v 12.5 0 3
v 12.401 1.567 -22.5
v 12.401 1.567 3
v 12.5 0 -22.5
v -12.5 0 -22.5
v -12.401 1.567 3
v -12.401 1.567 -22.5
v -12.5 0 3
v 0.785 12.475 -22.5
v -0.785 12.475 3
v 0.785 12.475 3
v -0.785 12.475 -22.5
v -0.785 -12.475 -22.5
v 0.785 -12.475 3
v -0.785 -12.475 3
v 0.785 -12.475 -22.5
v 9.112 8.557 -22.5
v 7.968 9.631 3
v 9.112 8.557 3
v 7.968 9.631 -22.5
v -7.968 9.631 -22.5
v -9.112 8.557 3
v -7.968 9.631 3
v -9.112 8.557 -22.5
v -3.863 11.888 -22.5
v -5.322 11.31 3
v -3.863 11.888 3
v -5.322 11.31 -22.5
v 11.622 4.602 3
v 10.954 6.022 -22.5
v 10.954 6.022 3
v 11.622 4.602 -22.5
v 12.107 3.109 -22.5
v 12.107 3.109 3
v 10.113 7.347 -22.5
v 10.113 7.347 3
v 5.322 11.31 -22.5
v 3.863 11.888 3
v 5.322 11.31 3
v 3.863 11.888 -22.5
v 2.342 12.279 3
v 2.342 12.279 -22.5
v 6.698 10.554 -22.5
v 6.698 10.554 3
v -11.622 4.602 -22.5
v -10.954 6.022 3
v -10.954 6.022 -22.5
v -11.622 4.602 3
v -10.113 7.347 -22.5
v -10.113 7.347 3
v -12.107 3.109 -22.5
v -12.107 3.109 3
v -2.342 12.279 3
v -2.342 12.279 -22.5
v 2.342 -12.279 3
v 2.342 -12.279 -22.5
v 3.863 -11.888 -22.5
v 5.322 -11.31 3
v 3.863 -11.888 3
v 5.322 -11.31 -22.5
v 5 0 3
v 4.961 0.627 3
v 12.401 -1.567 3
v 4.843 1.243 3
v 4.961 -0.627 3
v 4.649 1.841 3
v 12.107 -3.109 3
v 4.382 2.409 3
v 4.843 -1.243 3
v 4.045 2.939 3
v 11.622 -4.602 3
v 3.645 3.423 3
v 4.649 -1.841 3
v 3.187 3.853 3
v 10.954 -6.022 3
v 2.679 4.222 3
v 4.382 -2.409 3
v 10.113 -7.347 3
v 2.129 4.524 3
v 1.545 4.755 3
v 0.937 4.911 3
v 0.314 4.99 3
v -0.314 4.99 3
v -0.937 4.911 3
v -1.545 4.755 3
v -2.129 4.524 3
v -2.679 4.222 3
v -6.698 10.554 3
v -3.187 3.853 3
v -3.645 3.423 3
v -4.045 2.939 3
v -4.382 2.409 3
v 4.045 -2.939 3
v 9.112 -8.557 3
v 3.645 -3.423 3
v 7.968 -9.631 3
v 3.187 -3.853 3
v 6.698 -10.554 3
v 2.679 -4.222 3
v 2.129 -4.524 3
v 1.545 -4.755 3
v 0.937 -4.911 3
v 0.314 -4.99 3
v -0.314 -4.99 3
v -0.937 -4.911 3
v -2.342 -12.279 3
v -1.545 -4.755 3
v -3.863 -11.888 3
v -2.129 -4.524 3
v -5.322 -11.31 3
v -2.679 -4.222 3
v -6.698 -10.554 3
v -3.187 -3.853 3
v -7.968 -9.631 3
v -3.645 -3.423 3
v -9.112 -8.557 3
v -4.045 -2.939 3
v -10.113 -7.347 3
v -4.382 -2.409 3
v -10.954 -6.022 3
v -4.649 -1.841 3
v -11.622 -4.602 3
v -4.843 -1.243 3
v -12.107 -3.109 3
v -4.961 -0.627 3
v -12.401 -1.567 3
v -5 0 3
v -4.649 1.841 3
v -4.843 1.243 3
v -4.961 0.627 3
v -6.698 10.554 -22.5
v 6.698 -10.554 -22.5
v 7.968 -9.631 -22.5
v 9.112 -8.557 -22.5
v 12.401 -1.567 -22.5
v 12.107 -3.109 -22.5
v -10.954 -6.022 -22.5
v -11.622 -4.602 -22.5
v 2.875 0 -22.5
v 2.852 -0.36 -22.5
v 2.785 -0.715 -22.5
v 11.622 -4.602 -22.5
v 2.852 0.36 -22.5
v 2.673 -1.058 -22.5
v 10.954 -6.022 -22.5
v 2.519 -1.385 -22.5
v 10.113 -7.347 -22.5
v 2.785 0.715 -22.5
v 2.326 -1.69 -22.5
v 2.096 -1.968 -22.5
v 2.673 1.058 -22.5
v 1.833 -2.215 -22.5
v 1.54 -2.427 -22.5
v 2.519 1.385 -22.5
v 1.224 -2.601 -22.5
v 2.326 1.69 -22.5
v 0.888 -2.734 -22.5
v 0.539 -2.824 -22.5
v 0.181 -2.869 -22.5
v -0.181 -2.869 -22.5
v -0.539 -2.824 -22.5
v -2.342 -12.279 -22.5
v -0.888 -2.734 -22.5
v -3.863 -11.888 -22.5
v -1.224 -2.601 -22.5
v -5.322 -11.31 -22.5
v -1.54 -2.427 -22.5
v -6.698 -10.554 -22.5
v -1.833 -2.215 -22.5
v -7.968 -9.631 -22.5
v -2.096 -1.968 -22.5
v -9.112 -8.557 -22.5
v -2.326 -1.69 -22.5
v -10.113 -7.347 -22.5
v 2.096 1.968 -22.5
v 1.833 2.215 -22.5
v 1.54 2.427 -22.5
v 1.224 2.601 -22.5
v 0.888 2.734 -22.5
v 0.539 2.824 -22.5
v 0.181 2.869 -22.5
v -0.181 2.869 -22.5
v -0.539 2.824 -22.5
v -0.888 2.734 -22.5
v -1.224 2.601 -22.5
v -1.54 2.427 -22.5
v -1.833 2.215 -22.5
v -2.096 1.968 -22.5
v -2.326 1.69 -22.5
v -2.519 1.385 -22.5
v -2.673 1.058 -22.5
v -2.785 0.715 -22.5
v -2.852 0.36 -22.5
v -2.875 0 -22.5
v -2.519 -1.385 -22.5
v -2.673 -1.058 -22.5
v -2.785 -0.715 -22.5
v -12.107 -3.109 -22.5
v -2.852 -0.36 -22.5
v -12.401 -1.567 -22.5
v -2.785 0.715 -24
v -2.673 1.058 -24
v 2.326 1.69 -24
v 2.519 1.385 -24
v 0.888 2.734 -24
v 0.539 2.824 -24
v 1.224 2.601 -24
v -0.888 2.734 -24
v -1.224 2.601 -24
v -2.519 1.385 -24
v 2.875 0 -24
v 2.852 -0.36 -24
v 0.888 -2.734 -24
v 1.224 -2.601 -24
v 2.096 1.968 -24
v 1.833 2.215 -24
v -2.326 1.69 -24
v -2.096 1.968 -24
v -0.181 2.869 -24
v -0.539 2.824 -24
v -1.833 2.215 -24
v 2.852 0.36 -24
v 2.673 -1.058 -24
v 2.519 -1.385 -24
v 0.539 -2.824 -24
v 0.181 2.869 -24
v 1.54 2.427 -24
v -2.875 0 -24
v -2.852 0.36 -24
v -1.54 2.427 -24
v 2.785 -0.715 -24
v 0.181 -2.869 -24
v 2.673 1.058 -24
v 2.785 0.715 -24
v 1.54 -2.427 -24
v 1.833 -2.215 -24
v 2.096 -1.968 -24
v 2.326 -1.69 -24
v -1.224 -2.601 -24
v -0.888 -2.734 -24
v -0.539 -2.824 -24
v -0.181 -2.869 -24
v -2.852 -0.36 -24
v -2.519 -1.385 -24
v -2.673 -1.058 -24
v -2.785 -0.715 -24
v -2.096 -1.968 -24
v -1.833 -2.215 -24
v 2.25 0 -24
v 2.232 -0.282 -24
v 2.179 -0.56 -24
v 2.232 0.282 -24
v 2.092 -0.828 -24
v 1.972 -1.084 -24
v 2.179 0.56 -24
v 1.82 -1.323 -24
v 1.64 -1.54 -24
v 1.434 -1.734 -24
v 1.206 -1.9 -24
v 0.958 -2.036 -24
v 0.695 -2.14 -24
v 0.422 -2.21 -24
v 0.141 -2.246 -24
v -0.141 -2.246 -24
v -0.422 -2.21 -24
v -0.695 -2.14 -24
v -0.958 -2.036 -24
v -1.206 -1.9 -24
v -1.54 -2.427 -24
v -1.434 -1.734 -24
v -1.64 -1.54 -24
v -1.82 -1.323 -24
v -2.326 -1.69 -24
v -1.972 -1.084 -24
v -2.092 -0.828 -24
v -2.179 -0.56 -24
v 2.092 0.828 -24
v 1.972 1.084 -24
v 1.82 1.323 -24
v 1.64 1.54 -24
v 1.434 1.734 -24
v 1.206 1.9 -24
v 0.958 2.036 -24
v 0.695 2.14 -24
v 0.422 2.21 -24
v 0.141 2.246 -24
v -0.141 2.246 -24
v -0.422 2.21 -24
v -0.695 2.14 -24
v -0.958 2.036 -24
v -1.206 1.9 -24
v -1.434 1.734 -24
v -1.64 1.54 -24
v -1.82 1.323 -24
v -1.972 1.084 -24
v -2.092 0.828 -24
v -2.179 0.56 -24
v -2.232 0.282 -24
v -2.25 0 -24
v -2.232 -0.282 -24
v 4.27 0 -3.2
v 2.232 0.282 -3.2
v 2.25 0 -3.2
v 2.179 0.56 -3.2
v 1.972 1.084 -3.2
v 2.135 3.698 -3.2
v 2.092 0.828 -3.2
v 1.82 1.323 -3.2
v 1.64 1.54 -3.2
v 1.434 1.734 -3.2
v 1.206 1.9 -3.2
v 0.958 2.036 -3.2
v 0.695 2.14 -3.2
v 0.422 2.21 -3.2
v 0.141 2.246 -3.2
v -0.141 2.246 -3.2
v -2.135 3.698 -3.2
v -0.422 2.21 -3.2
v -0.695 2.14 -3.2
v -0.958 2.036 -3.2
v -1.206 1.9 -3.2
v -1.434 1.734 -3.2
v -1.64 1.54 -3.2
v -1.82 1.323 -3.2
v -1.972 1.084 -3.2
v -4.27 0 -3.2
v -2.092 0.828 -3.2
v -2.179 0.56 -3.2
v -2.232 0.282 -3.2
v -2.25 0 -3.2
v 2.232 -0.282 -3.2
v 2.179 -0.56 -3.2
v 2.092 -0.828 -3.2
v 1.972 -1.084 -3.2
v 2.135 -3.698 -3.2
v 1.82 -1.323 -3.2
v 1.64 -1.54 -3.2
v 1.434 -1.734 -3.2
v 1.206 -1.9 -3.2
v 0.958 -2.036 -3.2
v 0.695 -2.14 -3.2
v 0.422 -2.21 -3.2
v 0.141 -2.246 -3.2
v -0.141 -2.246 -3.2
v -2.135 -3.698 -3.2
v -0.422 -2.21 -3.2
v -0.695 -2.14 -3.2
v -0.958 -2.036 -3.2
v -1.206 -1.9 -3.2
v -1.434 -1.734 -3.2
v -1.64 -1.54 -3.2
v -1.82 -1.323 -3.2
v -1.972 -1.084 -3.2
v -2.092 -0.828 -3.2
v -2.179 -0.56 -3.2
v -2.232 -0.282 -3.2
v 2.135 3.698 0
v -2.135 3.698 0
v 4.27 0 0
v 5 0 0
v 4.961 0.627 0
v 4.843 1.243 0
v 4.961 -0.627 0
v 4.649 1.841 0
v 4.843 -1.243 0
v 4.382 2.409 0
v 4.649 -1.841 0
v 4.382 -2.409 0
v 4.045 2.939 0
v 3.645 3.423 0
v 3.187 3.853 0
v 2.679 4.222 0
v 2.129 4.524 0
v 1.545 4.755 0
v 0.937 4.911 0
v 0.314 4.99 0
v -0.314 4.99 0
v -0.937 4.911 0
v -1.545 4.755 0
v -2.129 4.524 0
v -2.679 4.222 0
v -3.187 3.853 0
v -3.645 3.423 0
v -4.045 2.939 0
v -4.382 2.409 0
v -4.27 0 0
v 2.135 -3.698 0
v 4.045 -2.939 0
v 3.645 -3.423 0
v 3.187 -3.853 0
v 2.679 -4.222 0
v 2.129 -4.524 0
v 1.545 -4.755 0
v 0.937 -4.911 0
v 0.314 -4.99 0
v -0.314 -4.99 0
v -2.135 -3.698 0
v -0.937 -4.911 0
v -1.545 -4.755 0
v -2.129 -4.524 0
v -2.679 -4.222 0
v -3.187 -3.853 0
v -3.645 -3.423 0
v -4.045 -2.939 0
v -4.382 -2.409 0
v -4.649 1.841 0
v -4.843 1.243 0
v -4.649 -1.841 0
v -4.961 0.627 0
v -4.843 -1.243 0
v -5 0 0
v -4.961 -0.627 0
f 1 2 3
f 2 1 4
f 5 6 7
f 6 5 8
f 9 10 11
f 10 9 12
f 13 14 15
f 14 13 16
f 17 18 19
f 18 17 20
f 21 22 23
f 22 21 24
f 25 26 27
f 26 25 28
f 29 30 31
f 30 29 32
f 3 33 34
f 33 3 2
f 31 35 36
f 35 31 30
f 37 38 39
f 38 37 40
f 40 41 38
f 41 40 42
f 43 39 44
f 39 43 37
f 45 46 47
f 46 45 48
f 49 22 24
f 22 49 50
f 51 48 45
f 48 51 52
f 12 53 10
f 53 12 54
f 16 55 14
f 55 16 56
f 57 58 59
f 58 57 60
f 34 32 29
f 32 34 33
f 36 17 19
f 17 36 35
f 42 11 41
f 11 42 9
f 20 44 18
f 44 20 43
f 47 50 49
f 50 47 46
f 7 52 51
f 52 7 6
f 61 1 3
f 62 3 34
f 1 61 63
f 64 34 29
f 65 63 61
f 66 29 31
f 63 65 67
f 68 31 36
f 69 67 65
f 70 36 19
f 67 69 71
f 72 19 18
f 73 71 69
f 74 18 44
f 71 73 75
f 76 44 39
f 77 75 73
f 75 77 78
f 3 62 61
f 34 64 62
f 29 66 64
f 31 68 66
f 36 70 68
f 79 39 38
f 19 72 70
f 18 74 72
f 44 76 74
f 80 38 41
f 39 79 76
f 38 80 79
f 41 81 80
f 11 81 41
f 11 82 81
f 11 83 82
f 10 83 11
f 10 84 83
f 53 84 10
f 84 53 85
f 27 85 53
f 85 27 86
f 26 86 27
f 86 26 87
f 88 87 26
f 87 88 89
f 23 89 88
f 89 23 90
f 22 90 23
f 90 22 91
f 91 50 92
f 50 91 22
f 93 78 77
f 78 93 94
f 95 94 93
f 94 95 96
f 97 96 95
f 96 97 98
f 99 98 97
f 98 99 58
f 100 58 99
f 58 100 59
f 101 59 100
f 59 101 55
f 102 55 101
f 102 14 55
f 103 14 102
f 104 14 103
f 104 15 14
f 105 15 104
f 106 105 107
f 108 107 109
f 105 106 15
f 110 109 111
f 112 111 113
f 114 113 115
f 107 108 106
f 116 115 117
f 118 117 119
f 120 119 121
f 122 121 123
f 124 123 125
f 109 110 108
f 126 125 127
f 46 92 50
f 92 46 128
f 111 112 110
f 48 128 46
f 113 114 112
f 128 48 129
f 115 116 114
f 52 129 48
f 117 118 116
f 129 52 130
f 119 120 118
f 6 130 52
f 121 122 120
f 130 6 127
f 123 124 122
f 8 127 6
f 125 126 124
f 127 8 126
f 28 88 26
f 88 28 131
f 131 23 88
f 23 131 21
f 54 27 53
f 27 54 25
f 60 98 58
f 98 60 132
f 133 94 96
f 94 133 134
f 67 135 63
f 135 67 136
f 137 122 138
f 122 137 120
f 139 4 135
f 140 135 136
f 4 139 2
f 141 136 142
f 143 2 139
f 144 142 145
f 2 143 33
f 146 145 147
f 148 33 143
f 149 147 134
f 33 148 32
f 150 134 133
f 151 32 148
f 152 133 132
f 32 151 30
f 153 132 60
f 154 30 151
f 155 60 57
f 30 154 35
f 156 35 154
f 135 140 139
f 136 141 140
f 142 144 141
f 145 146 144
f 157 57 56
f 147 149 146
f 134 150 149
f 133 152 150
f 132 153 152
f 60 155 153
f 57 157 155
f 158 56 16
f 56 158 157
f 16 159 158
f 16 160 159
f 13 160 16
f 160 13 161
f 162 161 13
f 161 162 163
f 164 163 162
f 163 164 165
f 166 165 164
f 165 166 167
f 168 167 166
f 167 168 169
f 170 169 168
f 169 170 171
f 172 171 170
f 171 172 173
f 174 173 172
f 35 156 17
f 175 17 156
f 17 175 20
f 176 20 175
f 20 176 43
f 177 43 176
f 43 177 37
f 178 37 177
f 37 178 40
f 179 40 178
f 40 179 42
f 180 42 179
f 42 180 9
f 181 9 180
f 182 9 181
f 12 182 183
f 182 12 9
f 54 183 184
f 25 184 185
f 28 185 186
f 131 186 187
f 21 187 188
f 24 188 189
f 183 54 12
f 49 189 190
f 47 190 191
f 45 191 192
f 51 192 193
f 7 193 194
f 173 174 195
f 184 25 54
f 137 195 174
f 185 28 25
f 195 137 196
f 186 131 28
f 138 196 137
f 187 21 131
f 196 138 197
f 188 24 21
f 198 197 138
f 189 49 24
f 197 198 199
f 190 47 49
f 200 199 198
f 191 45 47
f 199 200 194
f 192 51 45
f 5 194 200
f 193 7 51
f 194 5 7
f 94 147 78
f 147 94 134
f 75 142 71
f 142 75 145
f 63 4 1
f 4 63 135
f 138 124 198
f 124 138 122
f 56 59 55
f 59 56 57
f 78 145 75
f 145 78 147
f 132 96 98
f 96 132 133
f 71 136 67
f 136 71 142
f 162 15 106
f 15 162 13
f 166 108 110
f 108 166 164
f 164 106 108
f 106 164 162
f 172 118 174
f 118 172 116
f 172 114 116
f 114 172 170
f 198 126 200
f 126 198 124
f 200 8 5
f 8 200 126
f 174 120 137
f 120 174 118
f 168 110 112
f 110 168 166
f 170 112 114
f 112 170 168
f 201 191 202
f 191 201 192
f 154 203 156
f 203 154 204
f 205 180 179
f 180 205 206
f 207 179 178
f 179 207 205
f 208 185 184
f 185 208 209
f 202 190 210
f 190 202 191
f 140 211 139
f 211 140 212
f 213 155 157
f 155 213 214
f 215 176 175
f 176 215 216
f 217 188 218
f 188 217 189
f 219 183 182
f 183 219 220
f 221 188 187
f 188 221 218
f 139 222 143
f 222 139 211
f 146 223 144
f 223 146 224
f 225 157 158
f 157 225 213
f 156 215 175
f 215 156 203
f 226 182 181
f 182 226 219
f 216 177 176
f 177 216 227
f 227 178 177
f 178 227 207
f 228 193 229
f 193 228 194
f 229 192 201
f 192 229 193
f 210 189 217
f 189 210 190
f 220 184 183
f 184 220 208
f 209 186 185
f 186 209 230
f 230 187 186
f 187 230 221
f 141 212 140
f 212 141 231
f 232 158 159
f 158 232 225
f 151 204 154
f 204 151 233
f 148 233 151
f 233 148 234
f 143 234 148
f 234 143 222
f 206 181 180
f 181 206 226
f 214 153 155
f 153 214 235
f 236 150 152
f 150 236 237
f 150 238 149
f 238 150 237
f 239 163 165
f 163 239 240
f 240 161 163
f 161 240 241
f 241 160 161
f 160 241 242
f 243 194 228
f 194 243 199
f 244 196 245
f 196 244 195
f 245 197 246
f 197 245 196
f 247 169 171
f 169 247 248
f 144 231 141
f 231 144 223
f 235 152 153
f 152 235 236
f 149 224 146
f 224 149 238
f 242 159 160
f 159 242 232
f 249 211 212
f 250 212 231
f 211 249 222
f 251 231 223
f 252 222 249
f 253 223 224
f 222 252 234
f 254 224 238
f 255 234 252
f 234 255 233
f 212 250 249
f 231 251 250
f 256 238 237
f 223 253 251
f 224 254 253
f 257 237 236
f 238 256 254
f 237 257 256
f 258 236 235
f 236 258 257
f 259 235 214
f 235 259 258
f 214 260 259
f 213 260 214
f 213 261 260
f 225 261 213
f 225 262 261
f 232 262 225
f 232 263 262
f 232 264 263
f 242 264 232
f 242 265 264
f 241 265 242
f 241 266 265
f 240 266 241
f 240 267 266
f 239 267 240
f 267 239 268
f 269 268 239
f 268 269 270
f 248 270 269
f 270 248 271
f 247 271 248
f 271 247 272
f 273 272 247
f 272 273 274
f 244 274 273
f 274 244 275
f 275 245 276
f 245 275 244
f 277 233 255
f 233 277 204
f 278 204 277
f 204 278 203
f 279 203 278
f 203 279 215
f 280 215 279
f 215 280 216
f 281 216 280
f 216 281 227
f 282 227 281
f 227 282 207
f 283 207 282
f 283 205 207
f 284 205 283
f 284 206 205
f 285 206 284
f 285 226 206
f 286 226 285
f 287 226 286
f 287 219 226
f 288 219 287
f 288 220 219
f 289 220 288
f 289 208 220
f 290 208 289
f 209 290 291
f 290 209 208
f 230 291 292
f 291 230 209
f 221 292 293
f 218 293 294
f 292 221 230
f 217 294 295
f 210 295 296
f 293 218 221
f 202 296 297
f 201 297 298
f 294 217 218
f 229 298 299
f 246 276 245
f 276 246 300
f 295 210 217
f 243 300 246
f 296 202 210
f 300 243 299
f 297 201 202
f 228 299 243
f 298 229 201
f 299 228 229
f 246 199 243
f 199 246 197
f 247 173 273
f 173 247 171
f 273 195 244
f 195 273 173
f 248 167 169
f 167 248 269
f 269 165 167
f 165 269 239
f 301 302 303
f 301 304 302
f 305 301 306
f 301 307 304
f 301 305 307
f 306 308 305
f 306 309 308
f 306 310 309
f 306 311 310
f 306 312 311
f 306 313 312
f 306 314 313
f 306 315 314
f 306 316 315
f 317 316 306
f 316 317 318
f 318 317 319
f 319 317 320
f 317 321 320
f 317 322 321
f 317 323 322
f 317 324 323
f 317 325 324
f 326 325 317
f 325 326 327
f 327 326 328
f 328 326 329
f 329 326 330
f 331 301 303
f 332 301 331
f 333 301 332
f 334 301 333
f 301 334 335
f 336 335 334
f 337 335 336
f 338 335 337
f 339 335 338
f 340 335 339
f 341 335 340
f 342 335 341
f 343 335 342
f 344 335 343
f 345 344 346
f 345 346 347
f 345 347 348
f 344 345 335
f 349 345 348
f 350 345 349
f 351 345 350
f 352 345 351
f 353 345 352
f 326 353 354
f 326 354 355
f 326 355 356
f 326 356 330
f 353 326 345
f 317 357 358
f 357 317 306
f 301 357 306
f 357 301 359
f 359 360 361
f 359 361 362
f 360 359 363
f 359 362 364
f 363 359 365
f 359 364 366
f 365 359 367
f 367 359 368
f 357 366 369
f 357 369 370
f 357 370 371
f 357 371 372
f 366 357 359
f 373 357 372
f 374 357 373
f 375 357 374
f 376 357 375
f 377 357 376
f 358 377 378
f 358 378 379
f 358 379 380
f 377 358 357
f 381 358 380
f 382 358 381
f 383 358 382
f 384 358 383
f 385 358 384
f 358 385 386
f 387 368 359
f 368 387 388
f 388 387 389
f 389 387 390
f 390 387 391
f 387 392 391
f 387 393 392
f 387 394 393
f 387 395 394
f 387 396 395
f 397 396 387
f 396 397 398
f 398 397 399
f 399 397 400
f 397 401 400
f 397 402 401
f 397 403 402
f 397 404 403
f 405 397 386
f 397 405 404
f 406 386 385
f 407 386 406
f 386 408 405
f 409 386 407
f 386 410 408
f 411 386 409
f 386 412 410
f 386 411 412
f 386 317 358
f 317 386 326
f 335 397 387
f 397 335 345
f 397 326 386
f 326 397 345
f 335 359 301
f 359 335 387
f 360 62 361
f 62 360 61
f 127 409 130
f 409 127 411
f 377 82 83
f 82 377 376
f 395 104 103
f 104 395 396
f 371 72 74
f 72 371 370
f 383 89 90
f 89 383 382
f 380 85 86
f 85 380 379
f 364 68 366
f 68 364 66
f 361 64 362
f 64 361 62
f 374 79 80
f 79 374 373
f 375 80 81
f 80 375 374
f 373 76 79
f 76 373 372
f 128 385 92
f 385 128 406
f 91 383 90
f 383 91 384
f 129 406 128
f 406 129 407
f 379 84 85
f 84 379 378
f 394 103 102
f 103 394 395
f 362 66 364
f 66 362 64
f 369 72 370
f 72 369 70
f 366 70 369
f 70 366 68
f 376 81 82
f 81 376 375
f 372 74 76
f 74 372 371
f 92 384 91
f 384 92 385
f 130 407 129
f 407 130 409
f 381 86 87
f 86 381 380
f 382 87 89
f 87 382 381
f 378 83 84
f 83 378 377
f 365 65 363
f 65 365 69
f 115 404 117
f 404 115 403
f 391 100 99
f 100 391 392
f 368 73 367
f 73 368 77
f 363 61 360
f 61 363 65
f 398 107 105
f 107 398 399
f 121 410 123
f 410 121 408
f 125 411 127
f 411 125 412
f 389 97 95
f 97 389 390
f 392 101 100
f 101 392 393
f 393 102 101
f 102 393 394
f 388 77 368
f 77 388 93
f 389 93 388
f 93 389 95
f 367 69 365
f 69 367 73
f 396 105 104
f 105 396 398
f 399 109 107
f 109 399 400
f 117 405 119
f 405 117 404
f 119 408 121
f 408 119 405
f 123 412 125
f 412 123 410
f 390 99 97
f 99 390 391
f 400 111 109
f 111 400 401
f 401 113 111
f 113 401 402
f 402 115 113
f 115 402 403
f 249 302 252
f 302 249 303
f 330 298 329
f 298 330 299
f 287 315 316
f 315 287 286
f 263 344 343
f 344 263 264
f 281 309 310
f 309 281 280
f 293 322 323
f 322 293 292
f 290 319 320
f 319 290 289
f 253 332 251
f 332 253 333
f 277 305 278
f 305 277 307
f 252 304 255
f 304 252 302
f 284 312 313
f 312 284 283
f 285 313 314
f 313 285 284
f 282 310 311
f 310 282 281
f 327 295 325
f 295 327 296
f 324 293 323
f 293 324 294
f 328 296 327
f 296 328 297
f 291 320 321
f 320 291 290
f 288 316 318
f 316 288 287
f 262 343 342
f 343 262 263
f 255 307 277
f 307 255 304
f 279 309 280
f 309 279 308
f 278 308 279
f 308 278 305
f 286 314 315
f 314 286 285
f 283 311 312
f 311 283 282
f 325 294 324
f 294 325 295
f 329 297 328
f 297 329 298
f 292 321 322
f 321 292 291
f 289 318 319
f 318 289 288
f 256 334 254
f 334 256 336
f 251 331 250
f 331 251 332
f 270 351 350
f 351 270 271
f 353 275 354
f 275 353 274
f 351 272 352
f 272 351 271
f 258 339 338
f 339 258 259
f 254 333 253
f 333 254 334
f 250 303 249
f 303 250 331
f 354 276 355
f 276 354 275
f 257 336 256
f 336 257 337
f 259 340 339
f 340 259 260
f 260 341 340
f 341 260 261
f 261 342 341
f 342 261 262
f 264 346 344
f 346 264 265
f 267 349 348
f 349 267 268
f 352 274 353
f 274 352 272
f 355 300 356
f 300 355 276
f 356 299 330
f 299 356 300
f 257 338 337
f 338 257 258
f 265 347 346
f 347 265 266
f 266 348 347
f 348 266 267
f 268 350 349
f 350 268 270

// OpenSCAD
$fn = 50;

difference() {
	union() {
		translate(v = [0, 0, -22.5]) {
			cylinder(h = 25.5, r = 12.5);
		}
		#translate(v = [0, 0, -24.0]) {
			cylinder(h = 24, r = 2.875);
		}
	}
	union() {
		translate(v = [0, 0, 0]) {
			rotate(a = [0, 0, 0]) {
				difference() {
					union() {
						translate(v = [0, 0, -3.2]) {
							linear_extrude(height = 3.2) {
								polygon(points = [[4.2698, 0.0], [2.1349000000000005, 3.697755269078796], [-2.134899999999999, 3.6977552690787965], [-4.2698, 5.228996902999369e-16], [-2.134900000000002, -3.6977552690787956], [2.1348999999999974, -3.697755269078798]]);
							}
						}
					}
					union();
				}
			}
		}
		#cylinder(h = 3, r = 5.0);
		#translate(v = [0, 0, -100.0]) {
			cylinder(h = 200, r = 2.25);
		}
	}
}
